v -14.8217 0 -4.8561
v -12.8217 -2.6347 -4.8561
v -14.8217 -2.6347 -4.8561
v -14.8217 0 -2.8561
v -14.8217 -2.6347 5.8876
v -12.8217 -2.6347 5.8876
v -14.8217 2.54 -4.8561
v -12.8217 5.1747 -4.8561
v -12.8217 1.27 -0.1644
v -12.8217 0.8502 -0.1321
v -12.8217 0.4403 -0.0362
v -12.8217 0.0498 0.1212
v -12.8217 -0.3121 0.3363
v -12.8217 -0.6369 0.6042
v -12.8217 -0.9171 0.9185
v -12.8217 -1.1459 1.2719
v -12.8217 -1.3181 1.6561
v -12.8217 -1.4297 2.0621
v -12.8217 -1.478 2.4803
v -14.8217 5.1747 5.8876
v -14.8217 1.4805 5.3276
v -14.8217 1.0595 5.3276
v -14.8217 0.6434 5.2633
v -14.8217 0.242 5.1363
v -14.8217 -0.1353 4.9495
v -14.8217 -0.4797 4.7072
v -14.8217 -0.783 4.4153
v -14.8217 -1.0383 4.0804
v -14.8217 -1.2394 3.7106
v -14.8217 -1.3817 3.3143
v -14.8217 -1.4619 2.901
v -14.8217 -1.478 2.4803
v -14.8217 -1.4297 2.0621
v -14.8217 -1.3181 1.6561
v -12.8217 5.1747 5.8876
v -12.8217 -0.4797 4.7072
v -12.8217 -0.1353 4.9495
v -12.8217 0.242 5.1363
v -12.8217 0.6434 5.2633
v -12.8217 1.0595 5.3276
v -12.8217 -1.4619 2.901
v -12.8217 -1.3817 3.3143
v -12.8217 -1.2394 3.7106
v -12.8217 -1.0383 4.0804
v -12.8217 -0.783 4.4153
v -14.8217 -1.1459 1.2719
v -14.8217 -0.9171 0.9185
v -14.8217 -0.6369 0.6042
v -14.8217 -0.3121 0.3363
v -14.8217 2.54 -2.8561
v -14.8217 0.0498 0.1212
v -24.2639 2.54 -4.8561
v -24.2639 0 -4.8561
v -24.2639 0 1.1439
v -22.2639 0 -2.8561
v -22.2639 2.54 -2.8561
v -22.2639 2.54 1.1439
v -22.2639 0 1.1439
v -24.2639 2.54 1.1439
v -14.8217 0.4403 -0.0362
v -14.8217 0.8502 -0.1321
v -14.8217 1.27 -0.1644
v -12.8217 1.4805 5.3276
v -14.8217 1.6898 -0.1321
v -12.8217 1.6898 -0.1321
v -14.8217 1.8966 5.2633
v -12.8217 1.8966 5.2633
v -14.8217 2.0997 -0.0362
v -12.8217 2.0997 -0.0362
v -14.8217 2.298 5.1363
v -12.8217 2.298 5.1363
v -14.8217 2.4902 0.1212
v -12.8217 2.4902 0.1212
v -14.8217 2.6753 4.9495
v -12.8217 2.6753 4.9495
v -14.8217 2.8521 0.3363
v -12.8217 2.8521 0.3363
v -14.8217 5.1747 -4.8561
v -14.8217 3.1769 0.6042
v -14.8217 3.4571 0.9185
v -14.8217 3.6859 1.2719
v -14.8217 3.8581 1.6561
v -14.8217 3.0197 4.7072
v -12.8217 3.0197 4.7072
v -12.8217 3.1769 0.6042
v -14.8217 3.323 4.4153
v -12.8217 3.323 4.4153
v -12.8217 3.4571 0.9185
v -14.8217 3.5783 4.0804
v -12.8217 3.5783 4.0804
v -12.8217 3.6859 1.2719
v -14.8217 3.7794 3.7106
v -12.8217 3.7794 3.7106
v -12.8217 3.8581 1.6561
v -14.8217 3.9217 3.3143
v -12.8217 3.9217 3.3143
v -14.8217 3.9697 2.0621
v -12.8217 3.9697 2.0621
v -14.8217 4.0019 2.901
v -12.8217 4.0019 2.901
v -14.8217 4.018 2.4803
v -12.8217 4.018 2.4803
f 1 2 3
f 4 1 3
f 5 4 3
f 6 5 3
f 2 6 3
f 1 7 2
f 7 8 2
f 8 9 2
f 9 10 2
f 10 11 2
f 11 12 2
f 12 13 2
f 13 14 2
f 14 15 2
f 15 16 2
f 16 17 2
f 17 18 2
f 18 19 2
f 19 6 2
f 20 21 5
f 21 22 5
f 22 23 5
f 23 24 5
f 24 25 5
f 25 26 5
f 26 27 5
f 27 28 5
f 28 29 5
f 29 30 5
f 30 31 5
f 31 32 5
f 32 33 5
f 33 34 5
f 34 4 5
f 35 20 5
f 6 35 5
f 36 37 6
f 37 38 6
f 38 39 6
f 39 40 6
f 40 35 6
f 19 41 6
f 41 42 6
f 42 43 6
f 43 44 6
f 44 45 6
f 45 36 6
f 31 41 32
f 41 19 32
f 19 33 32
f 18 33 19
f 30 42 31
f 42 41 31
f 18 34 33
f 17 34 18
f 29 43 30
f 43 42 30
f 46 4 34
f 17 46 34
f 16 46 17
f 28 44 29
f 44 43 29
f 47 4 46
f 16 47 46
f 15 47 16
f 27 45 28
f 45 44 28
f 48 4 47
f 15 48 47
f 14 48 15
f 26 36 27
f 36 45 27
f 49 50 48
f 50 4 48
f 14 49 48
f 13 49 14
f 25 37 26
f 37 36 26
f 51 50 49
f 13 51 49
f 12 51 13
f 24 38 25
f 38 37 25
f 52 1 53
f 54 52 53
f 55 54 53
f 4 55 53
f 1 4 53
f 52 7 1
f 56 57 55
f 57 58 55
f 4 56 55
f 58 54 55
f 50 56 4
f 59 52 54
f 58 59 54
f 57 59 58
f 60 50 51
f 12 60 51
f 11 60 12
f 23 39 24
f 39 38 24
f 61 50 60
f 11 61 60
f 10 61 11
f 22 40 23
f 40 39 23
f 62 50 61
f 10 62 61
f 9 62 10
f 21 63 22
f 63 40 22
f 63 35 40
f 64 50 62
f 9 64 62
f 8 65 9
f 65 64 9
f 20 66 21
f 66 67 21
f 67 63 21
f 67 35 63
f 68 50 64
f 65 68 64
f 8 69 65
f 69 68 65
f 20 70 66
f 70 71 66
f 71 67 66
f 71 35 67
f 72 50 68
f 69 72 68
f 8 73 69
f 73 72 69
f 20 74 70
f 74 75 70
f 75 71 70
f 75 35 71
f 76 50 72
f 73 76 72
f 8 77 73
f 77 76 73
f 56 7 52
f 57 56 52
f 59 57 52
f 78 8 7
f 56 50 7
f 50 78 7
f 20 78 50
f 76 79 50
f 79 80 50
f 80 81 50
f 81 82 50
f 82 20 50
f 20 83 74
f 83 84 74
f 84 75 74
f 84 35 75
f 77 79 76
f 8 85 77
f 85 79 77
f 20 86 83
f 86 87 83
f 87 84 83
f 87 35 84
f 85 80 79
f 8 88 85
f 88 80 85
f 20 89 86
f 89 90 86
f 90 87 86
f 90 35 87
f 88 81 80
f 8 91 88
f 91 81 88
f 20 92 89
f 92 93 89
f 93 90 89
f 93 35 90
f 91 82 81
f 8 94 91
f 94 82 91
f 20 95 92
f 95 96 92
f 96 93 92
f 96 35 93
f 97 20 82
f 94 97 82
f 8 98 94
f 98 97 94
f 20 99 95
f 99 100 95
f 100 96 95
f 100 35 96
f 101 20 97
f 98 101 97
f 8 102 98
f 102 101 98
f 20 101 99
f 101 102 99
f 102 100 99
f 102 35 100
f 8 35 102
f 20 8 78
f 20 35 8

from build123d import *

# Parameters (mm, degrees)
BOSS_EXTRUDE1_DEPTH = 2.54
F_3DSKETCH1_R       = 2.75
BOSS_EXTRUDE3_DEPTH = 2


with BuildPart() as part:
    # Sketch1 → Boss-Extrude1 (new body)
    with BuildSketch(Plane(origin=(0, 0, 0), x_dir=(1, 0, 0), z_dir=(0, 1, 0))):
        Polygon((-24.263943822, 4.856129722), (-24.263943822, -1.143870278), (-22.263943822, -1.143870278), (-22.263943822, 2.856129722), (-14.821743822, 2.856129722), (-14.821743822, 4.856129722), align=None)
    extrude(amount=BOSS_EXTRUDE1_DEPTH)

    # 3DSketch1 → Boss-Extrude3 (add)
    with BuildSketch(Plane(origin=(-14.821743822, 5.174700089, 5.887638741), x_dir=(0, -0.5879624138152767, -0.808888249352476), z_dir=(1, 0, 0))):
        Polygon((0, 0), (4.591633779, -6.316932039), (13.282141842, 0), (8.690508063, 6.316932039), align=None)
        with Locations(Location((4.966765889, -1.217014129, 0), (0, 0, 36.012547839))):
            Circle(F_3DSKETCH1_R, mode=Mode.SUBTRACT)
    extrude(amount=BOSS_EXTRUDE3_DEPTH)


solid = part.part
